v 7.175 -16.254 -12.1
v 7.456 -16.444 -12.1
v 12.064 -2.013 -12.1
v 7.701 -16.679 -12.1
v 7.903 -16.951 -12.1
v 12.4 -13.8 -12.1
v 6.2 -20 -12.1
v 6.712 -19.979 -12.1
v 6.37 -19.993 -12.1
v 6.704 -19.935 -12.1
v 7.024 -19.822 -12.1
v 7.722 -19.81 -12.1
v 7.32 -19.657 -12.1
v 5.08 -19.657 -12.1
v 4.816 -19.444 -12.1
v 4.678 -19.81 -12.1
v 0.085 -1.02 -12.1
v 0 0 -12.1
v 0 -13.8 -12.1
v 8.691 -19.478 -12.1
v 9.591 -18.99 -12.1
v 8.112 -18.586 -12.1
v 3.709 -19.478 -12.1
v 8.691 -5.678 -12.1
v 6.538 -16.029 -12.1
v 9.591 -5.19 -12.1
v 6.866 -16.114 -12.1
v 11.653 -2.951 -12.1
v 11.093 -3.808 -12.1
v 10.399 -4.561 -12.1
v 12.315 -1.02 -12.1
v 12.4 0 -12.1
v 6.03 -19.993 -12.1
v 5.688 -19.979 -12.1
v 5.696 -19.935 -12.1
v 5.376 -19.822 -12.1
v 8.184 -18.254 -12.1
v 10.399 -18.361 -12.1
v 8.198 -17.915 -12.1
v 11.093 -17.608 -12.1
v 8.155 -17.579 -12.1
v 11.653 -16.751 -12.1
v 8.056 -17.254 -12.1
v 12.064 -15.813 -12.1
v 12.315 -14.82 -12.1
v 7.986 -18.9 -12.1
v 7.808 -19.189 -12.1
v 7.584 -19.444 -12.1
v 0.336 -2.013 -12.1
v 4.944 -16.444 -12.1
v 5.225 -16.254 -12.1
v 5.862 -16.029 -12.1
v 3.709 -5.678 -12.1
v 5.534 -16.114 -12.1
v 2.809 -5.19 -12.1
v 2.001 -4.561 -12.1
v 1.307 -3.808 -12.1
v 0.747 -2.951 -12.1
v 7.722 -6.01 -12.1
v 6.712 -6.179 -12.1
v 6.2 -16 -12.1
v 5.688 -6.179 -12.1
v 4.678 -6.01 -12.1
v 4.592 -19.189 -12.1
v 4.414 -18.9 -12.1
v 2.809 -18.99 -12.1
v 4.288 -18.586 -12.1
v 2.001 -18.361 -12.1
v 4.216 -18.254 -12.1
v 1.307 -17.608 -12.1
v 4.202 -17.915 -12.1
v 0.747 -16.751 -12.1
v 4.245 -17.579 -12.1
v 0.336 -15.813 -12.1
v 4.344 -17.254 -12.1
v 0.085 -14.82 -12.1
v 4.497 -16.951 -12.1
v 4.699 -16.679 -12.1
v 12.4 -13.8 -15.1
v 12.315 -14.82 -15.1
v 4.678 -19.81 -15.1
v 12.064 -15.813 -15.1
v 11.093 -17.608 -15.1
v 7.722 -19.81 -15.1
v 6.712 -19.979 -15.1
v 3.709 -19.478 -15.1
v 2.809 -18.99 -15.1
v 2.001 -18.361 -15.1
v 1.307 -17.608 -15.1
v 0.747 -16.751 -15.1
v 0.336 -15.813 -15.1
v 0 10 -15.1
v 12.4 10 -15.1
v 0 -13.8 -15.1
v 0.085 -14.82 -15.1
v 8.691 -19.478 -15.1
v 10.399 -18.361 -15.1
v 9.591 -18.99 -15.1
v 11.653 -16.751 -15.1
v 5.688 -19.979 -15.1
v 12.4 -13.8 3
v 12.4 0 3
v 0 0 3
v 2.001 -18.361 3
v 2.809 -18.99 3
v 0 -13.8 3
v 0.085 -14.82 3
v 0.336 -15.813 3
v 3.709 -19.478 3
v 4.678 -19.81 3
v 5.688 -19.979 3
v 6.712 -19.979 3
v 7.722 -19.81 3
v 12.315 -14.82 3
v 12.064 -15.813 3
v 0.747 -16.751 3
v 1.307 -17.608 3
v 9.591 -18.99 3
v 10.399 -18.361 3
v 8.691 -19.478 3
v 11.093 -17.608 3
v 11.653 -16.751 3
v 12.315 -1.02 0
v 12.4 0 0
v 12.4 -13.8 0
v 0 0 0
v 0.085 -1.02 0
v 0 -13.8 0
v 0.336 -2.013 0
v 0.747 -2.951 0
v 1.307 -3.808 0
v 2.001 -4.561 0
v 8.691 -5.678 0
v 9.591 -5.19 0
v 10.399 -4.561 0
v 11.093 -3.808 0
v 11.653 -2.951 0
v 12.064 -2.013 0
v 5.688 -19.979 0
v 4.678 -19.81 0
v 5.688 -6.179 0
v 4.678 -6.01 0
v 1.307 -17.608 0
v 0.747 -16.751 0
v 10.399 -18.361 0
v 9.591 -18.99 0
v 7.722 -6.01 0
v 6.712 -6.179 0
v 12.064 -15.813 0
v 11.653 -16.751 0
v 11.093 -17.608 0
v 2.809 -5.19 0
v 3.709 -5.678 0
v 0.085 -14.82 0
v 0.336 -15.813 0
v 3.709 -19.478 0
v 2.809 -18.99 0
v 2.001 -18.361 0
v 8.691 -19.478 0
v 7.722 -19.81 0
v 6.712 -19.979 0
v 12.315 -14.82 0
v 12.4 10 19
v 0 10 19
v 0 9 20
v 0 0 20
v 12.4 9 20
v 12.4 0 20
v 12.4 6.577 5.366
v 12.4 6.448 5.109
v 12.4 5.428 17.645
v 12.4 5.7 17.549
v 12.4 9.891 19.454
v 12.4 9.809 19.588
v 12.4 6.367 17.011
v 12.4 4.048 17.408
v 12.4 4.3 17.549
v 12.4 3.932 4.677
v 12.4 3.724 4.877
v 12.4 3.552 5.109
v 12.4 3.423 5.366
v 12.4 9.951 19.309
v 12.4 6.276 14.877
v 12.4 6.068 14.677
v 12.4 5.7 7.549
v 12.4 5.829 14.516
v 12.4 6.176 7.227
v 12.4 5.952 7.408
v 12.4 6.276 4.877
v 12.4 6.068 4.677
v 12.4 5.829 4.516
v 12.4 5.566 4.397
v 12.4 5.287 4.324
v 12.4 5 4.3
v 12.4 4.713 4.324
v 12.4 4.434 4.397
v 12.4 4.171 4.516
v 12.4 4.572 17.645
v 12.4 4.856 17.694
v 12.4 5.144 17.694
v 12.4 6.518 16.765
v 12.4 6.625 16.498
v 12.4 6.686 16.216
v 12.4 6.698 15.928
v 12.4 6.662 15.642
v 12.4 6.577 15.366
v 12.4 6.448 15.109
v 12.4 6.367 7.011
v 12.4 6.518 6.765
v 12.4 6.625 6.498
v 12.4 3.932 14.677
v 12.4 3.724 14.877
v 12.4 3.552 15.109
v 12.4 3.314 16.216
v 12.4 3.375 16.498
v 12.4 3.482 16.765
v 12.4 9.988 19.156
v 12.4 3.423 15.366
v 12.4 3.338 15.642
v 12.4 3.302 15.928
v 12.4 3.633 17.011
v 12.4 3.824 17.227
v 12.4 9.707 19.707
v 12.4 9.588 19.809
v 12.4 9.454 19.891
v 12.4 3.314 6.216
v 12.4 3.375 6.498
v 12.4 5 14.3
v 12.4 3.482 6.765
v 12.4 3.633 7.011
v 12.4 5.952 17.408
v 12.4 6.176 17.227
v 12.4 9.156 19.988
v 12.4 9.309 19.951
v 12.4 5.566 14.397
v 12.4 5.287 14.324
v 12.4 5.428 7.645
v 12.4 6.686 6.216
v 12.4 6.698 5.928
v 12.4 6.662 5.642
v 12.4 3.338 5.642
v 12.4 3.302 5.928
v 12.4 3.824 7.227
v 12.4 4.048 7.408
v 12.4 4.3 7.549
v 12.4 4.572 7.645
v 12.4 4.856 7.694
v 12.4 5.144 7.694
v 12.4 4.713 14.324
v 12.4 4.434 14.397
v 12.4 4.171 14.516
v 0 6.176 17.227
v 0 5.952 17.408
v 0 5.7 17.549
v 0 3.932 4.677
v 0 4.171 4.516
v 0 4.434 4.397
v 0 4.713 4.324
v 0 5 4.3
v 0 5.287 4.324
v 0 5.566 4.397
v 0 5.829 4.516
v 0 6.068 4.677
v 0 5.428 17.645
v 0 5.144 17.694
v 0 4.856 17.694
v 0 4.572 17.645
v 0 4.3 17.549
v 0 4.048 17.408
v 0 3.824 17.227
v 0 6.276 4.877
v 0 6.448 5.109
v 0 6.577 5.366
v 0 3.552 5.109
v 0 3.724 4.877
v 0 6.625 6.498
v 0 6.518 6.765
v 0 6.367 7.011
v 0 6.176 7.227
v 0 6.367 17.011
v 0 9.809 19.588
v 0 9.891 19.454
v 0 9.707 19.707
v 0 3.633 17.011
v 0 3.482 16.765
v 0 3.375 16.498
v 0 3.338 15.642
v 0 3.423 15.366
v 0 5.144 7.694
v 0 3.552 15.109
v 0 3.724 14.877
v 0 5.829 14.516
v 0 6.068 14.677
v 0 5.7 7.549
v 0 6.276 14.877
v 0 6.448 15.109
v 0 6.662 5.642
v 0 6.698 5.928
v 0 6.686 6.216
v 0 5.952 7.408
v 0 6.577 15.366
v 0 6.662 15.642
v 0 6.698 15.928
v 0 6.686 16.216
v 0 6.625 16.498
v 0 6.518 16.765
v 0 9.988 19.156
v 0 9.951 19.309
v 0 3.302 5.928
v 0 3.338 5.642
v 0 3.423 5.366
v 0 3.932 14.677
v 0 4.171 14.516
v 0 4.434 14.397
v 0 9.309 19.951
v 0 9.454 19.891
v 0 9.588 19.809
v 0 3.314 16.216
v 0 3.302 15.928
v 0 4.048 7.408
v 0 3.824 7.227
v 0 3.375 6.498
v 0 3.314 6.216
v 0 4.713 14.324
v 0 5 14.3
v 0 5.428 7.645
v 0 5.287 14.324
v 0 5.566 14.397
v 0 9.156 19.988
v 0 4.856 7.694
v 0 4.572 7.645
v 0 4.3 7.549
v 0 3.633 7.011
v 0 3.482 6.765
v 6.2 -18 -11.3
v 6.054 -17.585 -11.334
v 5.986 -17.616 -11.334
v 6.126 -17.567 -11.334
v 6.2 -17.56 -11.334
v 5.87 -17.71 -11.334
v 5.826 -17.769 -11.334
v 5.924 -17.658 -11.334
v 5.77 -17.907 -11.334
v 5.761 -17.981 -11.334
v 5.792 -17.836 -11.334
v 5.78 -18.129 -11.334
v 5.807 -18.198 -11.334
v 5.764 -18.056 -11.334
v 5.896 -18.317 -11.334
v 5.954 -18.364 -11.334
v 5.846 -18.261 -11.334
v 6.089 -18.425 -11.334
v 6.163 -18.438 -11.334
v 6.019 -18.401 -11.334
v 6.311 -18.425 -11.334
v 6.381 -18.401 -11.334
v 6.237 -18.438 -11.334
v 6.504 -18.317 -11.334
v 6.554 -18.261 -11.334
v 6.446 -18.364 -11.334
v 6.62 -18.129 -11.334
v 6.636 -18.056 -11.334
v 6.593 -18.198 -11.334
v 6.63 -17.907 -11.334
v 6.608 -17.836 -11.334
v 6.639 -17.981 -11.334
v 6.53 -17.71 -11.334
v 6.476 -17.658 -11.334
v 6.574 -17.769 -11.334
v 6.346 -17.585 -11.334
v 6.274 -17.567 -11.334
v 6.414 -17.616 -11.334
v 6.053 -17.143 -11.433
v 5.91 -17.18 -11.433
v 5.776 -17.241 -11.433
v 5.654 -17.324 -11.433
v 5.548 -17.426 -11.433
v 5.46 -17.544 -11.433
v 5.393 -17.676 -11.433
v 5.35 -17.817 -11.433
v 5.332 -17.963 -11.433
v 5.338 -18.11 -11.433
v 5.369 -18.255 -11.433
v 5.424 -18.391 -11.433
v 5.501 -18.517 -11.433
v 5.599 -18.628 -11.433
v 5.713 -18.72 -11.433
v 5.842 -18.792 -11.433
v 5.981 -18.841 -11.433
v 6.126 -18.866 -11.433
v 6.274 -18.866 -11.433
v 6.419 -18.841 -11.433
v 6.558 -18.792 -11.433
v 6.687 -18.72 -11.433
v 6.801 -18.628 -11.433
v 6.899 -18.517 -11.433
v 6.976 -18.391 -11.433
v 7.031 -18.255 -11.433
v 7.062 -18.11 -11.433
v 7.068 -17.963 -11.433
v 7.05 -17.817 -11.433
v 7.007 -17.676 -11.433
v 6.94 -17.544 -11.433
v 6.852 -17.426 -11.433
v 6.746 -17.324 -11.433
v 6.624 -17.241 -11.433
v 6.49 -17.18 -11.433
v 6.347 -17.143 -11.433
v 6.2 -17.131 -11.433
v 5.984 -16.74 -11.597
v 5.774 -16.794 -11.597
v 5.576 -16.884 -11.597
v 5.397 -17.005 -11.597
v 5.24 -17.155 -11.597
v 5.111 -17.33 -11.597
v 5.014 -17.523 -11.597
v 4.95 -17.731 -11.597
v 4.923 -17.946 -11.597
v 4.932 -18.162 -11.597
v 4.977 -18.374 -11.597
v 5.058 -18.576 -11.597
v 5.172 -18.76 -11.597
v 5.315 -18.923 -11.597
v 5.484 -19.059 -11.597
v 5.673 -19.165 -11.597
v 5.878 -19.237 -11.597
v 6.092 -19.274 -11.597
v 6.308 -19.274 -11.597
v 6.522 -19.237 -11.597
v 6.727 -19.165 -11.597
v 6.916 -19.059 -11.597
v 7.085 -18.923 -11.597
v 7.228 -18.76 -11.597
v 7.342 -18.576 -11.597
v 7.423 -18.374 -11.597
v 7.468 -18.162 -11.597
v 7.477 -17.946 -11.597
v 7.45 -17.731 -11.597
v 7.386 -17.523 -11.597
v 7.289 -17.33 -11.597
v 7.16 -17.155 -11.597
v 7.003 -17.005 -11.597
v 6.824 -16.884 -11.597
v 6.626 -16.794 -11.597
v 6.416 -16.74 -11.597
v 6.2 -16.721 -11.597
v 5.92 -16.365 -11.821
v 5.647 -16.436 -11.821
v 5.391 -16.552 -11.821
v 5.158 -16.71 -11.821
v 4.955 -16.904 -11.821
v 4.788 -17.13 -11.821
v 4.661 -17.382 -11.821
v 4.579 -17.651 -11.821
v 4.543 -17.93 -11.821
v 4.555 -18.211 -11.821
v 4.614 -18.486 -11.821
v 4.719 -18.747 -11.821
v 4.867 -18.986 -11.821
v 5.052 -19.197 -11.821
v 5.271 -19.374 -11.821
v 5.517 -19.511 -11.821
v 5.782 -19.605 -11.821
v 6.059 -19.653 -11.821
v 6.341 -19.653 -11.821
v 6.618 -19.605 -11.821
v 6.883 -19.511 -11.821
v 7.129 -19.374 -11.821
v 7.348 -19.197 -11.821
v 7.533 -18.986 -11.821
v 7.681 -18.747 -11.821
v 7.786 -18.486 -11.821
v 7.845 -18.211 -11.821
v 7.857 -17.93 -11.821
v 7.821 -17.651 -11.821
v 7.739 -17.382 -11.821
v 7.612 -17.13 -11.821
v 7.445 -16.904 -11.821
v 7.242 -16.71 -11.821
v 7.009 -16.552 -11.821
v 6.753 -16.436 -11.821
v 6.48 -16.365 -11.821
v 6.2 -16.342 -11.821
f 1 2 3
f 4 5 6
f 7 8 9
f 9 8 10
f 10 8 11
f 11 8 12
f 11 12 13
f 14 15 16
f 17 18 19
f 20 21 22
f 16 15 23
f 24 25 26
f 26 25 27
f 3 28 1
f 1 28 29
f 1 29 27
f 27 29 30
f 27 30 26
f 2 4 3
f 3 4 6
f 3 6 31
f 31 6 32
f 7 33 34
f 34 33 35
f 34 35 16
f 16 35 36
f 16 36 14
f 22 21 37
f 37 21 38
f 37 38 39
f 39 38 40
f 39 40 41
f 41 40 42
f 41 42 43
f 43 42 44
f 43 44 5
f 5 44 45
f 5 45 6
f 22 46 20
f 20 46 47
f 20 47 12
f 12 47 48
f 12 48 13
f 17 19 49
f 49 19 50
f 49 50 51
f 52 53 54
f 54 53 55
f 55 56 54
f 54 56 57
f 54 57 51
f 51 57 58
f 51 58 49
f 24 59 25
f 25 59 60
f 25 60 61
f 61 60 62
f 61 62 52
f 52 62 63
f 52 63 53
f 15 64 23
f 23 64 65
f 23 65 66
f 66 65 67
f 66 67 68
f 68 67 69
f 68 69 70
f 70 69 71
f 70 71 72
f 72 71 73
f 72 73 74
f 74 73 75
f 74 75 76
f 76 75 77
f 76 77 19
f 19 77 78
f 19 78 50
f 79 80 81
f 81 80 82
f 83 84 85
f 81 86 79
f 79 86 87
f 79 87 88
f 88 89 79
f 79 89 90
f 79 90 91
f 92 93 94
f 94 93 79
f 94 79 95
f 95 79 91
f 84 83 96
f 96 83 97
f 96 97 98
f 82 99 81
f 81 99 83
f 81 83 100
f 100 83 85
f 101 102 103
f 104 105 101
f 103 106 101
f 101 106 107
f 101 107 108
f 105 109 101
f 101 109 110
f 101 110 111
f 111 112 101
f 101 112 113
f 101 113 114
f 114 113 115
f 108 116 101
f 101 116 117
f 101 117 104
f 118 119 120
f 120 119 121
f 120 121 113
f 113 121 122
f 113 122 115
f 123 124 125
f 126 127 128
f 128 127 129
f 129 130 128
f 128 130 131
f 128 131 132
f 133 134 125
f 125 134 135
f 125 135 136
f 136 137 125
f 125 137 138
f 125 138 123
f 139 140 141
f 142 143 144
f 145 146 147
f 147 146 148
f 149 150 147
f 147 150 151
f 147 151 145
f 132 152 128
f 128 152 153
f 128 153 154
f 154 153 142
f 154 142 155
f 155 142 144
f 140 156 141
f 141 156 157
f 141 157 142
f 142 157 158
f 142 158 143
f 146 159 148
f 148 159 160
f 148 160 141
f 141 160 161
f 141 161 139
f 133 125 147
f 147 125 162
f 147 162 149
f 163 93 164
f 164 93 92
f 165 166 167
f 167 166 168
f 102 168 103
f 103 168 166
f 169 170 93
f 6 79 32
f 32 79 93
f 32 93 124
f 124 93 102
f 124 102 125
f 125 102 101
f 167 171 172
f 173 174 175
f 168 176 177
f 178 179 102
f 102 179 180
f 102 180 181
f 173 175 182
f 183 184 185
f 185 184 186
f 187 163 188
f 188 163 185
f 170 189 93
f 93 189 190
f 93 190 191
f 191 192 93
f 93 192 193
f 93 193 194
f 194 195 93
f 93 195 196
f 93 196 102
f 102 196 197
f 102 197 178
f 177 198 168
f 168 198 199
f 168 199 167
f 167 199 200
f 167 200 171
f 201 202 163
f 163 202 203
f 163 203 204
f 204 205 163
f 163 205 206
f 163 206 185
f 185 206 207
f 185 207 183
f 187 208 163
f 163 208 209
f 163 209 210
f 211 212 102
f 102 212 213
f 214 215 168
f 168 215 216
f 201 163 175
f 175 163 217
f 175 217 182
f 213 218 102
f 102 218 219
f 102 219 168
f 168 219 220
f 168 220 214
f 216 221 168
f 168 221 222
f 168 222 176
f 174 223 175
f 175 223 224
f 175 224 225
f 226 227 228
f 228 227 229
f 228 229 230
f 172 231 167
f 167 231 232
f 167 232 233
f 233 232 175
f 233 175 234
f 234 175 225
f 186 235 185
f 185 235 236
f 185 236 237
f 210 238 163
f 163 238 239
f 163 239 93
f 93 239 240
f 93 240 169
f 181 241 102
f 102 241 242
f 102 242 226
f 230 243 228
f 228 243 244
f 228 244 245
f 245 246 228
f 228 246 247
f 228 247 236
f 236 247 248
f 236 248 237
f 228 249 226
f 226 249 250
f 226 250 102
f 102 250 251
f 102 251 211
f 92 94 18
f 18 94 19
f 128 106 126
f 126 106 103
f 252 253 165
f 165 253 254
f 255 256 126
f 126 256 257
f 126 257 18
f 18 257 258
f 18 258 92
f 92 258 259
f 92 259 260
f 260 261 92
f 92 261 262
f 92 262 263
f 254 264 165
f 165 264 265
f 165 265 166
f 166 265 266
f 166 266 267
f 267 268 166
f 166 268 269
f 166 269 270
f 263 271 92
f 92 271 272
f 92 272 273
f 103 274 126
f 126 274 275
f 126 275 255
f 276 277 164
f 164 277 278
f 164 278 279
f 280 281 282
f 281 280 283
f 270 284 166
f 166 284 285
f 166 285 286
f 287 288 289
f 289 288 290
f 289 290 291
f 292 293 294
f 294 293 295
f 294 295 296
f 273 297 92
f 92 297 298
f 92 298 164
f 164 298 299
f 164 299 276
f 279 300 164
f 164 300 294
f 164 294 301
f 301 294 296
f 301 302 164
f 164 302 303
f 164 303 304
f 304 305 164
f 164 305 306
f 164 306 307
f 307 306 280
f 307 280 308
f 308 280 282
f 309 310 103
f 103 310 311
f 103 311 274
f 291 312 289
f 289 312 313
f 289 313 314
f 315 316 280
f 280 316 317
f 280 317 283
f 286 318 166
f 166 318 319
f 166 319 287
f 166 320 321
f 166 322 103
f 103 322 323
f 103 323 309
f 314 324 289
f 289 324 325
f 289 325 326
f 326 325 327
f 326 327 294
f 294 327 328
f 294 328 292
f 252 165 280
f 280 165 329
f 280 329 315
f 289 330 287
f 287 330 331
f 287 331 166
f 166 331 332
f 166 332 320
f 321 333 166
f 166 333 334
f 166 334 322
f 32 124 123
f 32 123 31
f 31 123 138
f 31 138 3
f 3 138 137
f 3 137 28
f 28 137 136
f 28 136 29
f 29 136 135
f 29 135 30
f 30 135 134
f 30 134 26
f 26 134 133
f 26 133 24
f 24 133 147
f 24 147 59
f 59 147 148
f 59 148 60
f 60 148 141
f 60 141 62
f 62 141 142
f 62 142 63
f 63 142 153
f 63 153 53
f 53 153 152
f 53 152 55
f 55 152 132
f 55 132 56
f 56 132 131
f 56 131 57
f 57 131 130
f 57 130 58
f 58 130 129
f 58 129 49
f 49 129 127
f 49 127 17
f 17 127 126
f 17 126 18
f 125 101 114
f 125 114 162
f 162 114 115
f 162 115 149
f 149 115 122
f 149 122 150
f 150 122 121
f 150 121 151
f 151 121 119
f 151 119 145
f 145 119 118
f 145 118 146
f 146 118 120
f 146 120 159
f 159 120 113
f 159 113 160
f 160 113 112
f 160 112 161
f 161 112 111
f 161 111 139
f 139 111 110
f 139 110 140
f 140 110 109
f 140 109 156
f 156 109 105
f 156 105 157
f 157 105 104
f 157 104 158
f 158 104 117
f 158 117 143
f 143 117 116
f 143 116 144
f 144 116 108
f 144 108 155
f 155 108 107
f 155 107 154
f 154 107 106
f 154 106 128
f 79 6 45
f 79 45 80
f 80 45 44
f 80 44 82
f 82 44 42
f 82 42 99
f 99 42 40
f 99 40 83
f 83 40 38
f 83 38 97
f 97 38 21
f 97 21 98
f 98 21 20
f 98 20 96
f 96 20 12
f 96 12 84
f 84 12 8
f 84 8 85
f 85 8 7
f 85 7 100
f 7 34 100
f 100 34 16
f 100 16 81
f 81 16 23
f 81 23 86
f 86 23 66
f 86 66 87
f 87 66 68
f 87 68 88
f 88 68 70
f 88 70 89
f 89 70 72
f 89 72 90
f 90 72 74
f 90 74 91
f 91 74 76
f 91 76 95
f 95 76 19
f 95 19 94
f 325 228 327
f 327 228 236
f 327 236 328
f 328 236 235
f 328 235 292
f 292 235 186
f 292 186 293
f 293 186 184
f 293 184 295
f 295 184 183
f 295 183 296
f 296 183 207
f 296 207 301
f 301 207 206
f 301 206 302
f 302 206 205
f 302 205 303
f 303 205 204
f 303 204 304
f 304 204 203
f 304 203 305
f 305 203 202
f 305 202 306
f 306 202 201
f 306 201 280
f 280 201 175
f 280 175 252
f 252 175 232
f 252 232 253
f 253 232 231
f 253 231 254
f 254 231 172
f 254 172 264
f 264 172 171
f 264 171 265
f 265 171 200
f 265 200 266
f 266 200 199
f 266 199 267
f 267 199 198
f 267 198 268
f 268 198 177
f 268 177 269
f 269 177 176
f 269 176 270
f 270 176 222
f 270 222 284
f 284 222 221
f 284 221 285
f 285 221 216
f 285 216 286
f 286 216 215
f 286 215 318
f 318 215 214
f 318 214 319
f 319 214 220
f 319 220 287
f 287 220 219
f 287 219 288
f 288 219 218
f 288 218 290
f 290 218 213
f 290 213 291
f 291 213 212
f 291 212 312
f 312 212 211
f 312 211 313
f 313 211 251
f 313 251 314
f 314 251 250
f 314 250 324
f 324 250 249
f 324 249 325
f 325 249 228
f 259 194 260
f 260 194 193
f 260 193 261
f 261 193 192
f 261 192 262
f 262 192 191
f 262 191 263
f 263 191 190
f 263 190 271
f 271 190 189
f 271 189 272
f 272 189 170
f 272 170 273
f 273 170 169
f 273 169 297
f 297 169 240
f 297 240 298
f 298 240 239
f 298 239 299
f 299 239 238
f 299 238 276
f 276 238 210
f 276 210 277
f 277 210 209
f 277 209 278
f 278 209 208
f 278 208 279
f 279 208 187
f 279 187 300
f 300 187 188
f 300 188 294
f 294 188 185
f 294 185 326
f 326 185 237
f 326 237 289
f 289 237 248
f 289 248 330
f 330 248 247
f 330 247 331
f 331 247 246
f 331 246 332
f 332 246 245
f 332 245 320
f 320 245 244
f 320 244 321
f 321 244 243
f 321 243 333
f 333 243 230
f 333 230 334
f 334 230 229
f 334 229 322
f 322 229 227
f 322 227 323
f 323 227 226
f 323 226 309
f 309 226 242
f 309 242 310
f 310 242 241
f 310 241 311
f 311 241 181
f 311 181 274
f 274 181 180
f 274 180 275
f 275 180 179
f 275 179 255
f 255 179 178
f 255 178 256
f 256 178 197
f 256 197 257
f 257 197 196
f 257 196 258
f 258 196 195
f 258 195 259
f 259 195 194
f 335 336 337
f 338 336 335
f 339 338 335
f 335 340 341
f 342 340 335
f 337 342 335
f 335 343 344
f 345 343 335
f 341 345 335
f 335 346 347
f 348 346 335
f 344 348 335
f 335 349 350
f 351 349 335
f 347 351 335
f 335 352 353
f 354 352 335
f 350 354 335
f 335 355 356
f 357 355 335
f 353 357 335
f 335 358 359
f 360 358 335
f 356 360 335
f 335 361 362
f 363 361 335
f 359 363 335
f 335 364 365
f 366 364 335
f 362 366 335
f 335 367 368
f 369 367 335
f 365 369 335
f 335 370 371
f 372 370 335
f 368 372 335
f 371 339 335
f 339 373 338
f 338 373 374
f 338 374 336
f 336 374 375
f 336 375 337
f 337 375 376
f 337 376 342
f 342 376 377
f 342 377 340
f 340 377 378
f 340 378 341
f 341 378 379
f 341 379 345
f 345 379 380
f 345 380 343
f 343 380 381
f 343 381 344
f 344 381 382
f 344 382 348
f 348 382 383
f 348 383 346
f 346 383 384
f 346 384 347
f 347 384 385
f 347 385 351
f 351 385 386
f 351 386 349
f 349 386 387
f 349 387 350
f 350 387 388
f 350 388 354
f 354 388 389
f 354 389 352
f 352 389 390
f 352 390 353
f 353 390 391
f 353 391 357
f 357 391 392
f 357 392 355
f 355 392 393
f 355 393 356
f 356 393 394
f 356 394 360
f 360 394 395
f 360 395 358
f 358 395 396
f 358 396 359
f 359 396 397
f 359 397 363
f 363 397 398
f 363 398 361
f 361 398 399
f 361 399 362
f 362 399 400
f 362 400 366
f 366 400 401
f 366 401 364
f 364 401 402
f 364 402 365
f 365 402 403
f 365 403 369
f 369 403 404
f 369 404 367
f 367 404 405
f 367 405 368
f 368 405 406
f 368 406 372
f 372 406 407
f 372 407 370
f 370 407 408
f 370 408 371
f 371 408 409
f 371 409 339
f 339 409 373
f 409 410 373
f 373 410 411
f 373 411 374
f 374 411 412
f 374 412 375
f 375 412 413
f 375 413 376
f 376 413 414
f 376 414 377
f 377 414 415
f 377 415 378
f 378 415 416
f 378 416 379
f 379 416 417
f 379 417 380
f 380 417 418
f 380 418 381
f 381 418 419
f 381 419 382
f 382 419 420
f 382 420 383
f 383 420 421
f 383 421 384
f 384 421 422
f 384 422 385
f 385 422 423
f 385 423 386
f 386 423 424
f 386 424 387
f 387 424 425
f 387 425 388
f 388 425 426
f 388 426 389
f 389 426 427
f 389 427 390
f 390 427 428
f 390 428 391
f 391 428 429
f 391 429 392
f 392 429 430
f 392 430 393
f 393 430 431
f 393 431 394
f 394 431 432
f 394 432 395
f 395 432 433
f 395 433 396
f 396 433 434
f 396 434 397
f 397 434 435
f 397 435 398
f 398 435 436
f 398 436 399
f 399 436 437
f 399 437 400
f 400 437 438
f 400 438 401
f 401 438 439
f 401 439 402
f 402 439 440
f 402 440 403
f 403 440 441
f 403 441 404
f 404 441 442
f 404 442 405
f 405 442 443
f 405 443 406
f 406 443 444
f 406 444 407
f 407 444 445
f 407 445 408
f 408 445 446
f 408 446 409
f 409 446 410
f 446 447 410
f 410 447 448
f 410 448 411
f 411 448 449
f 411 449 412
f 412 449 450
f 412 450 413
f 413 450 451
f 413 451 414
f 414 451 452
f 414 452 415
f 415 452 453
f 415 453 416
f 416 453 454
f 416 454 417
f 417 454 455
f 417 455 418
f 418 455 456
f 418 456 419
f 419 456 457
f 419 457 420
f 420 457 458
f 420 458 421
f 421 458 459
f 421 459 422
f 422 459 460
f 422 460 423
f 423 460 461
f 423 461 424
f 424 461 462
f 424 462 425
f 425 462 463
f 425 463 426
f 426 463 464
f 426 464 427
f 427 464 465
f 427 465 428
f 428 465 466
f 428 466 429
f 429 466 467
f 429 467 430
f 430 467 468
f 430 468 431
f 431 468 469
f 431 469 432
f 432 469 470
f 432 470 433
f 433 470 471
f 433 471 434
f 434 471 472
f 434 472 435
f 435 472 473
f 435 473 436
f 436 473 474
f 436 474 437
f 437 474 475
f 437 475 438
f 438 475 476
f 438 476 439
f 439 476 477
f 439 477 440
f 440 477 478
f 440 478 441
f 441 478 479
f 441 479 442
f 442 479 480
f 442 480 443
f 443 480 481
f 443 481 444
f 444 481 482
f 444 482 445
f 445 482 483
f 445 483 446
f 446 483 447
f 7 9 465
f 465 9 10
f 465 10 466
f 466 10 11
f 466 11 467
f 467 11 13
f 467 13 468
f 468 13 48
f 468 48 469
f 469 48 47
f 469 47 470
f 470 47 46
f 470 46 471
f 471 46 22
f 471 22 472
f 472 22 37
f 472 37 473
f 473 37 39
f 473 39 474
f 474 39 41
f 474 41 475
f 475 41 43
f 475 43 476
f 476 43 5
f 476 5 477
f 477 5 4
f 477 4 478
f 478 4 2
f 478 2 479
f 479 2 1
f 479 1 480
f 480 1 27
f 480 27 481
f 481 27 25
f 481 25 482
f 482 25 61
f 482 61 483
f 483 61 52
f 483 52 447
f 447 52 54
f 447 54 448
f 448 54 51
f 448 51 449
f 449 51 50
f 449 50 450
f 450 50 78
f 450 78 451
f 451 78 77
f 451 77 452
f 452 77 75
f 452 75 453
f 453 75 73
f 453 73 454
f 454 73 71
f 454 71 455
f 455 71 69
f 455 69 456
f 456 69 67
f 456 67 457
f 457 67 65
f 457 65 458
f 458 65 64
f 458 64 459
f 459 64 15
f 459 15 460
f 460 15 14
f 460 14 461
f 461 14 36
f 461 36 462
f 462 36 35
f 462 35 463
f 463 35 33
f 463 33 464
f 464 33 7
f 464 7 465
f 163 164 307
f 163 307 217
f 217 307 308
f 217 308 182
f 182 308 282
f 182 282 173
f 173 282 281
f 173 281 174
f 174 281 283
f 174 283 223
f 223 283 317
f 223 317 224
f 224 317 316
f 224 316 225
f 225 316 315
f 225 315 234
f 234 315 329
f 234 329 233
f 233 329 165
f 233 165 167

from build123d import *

# Parameters (mm, degrees)
EXTRUDE_1_DEPTH          = 12.4
CUT_EXTRUDE_1_DEPTH      = 12.1
CUT_EXTRUDE_2_DEPTH      = 21
CUT_EXTRUDE_2_DEPTH_BACK = 16.1
HOLE_WIZARD_M32_D        = 3.4
HOLE_WIZARD_M32_DEPTH    = 15
HOLE_WIZARD_M32_TIP      = 1.021463052
FILLET_2_R               = 1


with BuildPart() as part:
    # Эскиз2 → Бобышка-Вытянуть1 (new body)
    with BuildSketch(Plane(origin=(0, 0, 0), x_dir=(0, 0, -1), z_dir=(1, 0, 0))):
        Polygon((12.1, -8), (12.1, -20), (15.1, -20), (15.1, 10), (-20, 10), (-20, 0), (-3, 0), (-3, -20), (0, -20), (0, -8), align=None)
    extrude(amount=EXTRUDE_1_DEPTH)

    # Эскиз3 → Вырез-Вытянуть1 (cut)
    with BuildSketch(Plane.XY):
        with BuildLine():
            Line((0, 0), (-4.310236897, 0))
            Line((-4.310236897, 0), (-4.310236897, -10.158248203))
            Line((-4.310236897, -10.158248203), (16.784307367, -10.158248203))
            Line((16.784307367, -10.158248203), (16.784307367, 0))
            Line((16.784307367, 0), (12.4, 0))
            ThreePointArc((12.4, 0), (6.2, -6.2), (0, 0))
        make_face()
    extrude(amount=-CUT_EXTRUDE_1_DEPTH, mode=Mode.SUBTRACT)

    # Эскиз4 → Вырез-Вытянуть2 (cut, two sides)
    with BuildSketch(Plane.XY) as cut_extrude_2_sk:
        with BuildLine():
            Line((0, -13.8), (-4.529189241, -13.8))
            Line((-4.529189241, -13.8), (-4.529189241, -23.032738442))
            Line((-4.529189241, -23.032738442), (17.457291493, -23.032738442))
            Line((17.457291493, -23.032738442), (17.457291493, -13.8))
            Line((17.457291493, -13.8), (12.4, -13.8))
            ThreePointArc((12.4, -13.8), (6.2, -20), (0, -13.8))
        make_face()
    extrude(amount=CUT_EXTRUDE_2_DEPTH, mode=Mode.SUBTRACT)
    extrude(cut_extrude_2_sk.sketch, amount=-CUT_EXTRUDE_2_DEPTH_BACK, mode=Mode.SUBTRACT)

    # Отверстие с зазором M32
    with Locations(Plane(origin=(12.4, 0, 0), x_dir=(0, 0, -1), z_dir=(1, 0, 0))):
        with Locations((-6, 5), (-16, 5)):
            Hole(HOLE_WIZARD_M32_D / 2, depth=HOLE_WIZARD_M32_DEPTH)
            with Locations((0, 0, -(HOLE_WIZARD_M32_DEPTH + HOLE_WIZARD_M32_TIP / 2))):  # 118° drill point
                Cone(0, HOLE_WIZARD_M32_D / 2, HOLE_WIZARD_M32_TIP, mode=Mode.SUBTRACT)

    # Эскиз12 → Повернуть1 (revolve)
    with BuildSketch(Plane(origin=(6.2, 0, 0), x_dir=(0, 0, -1), z_dir=(1, 0, 0))):
        with BuildLine():
            Line((12.1, -20), (12.1, -18))
            Line((12.1, -18), (11.3, -18))
            ThreePointArc((11.3, -18), (11.507417596, -19.077032961), (12.1, -20))
        make_face()
    revolve(axis=Axis((6.2, -18, -11.3), (0, 0, -1)))

    # Скругление2
    fillet_2_edges = [part.edges().sort_by_distance(p)[0] for p in [
        (6.2, 10, 20),
    ]]
    fillet(fillet_2_edges, radius=FILLET_2_R)


solid = part.part
